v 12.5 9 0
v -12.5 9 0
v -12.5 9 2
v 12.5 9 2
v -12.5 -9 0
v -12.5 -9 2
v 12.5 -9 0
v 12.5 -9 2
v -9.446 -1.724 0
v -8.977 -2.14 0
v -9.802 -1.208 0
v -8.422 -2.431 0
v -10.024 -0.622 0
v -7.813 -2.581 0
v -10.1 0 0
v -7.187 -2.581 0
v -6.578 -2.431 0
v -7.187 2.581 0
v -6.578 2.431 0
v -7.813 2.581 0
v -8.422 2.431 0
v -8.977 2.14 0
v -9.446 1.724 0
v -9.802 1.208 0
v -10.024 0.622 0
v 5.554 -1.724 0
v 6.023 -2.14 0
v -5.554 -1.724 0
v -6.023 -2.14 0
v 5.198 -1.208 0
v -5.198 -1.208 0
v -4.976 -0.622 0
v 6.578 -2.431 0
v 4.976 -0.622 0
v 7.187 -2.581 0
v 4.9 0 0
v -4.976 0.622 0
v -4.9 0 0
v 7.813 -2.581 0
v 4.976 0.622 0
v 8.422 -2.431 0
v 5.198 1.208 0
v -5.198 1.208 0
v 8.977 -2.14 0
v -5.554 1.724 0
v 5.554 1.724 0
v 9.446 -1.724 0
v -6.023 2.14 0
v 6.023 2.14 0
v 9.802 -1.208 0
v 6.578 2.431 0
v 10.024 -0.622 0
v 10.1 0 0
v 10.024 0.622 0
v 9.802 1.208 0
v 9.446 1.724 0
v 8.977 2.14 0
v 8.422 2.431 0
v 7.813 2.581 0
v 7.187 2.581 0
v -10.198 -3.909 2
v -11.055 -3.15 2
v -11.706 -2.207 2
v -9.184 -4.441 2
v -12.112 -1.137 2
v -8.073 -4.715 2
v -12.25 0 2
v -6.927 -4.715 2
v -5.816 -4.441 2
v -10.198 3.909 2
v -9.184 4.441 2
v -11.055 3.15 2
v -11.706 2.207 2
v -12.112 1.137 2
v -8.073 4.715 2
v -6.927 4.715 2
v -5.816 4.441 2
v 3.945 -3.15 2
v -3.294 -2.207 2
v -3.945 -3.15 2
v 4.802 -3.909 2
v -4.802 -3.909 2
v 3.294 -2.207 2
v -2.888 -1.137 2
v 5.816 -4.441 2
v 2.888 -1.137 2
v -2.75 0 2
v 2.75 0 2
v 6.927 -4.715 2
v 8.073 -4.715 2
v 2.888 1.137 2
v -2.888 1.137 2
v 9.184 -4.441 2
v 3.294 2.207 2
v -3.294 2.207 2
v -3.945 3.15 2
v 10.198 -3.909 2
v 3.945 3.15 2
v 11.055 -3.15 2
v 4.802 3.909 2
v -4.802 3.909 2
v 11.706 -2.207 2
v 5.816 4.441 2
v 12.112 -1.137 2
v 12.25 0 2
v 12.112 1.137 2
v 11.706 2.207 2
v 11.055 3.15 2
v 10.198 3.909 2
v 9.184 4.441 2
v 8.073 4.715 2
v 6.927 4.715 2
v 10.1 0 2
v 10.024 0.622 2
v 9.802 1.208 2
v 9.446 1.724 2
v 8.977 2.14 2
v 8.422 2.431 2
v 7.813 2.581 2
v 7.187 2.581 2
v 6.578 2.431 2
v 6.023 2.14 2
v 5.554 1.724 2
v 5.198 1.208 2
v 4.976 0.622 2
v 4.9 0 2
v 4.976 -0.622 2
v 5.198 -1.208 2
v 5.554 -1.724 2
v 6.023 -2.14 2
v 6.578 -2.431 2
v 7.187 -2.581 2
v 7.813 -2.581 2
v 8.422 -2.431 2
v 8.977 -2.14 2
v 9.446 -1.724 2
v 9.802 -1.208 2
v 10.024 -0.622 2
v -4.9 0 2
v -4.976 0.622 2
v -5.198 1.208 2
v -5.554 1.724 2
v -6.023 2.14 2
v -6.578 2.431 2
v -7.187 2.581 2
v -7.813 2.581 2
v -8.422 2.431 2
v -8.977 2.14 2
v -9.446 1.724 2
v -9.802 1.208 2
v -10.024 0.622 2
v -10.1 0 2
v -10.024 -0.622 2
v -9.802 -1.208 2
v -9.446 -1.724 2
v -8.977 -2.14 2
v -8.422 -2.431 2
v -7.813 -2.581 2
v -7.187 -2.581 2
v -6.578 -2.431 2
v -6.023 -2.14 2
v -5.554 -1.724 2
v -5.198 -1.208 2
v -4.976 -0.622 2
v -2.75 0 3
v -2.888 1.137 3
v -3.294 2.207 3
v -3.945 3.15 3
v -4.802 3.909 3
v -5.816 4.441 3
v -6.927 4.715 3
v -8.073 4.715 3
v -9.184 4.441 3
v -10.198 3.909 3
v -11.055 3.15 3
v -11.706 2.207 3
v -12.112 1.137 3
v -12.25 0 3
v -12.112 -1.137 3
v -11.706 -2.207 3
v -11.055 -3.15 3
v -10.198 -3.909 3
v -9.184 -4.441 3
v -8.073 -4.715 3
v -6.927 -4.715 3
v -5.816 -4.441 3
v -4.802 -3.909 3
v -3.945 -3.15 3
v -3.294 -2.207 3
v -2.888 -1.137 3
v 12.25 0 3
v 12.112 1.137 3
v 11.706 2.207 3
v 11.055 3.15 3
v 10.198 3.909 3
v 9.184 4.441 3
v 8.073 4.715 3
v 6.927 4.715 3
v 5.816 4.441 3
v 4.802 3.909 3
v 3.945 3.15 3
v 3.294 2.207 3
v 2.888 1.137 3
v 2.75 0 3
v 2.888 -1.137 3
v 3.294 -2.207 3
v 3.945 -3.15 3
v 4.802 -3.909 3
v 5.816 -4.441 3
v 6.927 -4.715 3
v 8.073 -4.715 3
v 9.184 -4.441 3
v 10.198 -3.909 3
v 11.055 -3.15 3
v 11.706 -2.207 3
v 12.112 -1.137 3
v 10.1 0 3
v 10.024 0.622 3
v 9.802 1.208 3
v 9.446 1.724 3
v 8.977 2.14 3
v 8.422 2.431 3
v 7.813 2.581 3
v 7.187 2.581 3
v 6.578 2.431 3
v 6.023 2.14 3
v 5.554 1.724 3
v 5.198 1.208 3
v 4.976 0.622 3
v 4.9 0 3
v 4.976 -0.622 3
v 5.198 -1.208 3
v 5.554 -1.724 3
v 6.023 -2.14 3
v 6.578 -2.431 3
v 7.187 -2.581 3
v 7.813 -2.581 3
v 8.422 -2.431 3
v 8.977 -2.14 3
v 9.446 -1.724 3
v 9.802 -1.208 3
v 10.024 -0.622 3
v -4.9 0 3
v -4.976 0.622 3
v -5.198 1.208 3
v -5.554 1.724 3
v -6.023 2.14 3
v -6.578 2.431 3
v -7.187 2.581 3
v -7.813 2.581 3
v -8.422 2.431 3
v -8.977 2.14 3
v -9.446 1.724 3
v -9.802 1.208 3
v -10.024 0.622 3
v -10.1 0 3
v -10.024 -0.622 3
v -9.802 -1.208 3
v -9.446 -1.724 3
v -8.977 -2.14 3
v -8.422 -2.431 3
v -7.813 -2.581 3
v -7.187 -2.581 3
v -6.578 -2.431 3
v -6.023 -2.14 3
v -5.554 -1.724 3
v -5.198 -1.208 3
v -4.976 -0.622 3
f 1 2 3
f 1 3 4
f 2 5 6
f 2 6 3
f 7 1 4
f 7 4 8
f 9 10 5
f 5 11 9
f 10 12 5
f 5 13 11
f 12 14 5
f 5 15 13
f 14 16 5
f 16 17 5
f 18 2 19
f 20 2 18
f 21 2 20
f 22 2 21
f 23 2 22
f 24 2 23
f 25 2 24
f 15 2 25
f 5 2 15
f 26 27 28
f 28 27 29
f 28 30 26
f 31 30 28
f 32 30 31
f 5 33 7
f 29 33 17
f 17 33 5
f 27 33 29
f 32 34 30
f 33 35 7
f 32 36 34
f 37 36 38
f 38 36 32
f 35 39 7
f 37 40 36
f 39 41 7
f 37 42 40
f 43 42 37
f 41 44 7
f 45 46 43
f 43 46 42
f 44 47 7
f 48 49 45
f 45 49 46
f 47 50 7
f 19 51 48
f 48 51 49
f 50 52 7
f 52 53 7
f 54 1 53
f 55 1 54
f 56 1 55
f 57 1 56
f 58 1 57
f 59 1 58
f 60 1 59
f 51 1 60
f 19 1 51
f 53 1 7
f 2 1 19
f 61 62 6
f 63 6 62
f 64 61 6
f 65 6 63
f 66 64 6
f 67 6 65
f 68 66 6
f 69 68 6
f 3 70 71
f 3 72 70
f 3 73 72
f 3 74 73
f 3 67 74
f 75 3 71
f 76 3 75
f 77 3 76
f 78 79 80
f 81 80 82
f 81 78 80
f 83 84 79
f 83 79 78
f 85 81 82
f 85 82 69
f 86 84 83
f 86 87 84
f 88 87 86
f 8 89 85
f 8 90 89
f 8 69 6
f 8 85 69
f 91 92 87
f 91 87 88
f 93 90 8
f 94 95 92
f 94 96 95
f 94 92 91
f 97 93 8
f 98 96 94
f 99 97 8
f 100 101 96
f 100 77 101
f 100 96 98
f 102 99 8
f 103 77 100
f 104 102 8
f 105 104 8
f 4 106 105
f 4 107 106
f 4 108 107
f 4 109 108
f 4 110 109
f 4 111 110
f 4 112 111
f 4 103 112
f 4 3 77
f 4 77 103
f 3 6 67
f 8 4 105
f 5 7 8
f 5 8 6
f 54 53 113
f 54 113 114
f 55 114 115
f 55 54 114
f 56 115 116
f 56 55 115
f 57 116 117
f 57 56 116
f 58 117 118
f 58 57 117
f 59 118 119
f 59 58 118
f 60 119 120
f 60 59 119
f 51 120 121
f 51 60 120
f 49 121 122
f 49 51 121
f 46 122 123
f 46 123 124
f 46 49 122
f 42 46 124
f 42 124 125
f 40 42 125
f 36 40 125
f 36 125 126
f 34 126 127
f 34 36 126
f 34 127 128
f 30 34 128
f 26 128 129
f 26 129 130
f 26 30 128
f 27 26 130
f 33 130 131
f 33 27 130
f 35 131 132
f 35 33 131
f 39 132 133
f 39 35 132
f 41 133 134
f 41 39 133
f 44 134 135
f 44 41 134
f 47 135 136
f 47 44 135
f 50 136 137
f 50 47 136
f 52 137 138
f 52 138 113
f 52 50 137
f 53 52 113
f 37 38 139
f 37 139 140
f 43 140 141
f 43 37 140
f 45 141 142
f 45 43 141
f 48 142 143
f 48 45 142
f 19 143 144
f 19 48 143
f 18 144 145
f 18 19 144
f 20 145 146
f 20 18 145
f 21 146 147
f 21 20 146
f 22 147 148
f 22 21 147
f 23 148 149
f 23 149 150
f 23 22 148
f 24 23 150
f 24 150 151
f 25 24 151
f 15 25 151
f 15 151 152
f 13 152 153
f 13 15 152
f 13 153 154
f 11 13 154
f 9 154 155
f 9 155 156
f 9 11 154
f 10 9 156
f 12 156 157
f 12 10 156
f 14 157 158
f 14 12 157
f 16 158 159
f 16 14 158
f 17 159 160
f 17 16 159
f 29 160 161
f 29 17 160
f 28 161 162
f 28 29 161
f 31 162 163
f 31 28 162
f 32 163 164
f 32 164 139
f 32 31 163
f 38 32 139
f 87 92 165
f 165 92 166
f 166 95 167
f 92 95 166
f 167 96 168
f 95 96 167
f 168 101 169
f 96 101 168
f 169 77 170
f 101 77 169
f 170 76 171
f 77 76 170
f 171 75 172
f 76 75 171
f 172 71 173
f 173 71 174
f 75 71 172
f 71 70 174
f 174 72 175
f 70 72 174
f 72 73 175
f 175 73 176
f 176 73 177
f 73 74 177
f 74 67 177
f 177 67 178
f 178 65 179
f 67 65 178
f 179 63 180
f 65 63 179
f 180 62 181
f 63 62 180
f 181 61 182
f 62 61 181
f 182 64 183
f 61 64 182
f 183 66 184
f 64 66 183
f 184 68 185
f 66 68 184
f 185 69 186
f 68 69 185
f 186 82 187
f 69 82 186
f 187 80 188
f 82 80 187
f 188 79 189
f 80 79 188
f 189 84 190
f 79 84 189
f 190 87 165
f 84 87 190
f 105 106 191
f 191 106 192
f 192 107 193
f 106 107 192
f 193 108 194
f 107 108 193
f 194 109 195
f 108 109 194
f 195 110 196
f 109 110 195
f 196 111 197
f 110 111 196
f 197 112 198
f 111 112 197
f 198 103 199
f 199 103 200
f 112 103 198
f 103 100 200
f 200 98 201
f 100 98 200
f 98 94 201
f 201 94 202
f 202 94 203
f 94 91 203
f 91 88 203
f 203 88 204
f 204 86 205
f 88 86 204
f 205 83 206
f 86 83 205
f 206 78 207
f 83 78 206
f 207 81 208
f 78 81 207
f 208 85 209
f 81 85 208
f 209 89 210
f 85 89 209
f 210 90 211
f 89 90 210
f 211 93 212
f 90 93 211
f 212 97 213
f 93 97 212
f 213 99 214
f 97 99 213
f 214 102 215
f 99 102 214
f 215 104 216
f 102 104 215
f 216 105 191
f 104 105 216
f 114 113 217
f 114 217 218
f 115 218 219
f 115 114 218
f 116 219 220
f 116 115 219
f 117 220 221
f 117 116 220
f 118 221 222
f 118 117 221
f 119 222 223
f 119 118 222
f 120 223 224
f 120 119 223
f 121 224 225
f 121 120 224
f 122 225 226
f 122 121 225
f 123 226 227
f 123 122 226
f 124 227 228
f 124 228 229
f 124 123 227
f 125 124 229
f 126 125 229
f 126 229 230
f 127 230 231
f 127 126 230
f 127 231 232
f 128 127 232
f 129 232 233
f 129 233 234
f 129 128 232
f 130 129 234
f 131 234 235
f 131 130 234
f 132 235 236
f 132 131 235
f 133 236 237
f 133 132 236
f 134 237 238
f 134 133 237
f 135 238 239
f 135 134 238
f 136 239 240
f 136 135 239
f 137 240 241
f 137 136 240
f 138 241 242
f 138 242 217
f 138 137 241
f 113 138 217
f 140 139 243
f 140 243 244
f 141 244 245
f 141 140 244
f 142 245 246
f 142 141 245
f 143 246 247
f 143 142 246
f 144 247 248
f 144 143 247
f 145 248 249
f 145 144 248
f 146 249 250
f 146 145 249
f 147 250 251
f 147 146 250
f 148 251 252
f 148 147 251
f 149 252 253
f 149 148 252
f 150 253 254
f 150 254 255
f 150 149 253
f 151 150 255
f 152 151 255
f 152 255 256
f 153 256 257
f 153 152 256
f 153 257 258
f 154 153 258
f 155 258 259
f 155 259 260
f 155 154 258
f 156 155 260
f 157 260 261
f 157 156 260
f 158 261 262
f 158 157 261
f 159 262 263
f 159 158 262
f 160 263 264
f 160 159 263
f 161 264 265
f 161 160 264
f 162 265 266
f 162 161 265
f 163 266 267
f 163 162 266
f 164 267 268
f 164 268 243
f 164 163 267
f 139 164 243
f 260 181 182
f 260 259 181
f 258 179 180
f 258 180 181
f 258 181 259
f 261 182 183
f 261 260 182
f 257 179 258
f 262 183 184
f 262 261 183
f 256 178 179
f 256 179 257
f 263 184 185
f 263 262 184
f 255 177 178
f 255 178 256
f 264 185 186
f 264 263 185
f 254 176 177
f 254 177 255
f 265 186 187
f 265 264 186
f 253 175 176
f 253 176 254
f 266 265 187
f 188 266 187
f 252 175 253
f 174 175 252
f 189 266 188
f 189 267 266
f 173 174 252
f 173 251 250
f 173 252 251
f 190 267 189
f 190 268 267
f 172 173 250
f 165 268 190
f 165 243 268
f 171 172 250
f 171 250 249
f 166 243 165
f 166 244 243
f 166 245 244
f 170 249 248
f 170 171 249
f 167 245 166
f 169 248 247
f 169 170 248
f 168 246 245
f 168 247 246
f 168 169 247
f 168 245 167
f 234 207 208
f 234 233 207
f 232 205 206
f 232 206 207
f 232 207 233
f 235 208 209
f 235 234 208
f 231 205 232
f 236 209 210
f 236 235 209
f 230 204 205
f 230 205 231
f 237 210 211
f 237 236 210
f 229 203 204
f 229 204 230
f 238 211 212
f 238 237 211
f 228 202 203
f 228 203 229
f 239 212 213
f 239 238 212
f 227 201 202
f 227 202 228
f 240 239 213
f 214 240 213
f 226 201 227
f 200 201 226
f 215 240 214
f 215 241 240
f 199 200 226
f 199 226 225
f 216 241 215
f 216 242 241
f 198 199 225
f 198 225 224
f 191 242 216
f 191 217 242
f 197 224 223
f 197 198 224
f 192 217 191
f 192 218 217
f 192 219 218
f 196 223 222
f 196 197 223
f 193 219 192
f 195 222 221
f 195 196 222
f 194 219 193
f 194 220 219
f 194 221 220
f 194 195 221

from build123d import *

# Parameters (mm, degrees)
SKETCH_W      = 25
SKETCH_H      = 18
SKETCH_R      = 2.6
PAD_DEPTH     = 2
SKETCH001_R   = 4.75
SKETCH001_R_2 = 2.6
PAD001_DEPTH  = 1


with BuildPart() as part:
    # Sketch → Pad (new body)
    with BuildSketch(Plane.XY):
        Rectangle(SKETCH_W, SKETCH_H)
        with Locations((-7.5, 0)):
            Circle(SKETCH_R, mode=Mode.SUBTRACT)
        with Locations((7.5, 0)):
            Circle(SKETCH_R, mode=Mode.SUBTRACT)
    extrude(amount=PAD_DEPTH)

    # Sketch001 (on Face8 of Pad) → Pad001 (join)
    with BuildSketch(Plane.XY.offset(2)):
        with Locations((-7.5, 0)):
            Circle(SKETCH001_R)
        with Locations((-7.5, 0)):
            Circle(SKETCH001_R_2, mode=Mode.SUBTRACT)
        with Locations((7.5, 0)):
            Circle(SKETCH001_R)
        with Locations((7.5, 0)):
            Circle(SKETCH001_R_2, mode=Mode.SUBTRACT)
    extrude(amount=PAD001_DEPTH)


solid = part.part
